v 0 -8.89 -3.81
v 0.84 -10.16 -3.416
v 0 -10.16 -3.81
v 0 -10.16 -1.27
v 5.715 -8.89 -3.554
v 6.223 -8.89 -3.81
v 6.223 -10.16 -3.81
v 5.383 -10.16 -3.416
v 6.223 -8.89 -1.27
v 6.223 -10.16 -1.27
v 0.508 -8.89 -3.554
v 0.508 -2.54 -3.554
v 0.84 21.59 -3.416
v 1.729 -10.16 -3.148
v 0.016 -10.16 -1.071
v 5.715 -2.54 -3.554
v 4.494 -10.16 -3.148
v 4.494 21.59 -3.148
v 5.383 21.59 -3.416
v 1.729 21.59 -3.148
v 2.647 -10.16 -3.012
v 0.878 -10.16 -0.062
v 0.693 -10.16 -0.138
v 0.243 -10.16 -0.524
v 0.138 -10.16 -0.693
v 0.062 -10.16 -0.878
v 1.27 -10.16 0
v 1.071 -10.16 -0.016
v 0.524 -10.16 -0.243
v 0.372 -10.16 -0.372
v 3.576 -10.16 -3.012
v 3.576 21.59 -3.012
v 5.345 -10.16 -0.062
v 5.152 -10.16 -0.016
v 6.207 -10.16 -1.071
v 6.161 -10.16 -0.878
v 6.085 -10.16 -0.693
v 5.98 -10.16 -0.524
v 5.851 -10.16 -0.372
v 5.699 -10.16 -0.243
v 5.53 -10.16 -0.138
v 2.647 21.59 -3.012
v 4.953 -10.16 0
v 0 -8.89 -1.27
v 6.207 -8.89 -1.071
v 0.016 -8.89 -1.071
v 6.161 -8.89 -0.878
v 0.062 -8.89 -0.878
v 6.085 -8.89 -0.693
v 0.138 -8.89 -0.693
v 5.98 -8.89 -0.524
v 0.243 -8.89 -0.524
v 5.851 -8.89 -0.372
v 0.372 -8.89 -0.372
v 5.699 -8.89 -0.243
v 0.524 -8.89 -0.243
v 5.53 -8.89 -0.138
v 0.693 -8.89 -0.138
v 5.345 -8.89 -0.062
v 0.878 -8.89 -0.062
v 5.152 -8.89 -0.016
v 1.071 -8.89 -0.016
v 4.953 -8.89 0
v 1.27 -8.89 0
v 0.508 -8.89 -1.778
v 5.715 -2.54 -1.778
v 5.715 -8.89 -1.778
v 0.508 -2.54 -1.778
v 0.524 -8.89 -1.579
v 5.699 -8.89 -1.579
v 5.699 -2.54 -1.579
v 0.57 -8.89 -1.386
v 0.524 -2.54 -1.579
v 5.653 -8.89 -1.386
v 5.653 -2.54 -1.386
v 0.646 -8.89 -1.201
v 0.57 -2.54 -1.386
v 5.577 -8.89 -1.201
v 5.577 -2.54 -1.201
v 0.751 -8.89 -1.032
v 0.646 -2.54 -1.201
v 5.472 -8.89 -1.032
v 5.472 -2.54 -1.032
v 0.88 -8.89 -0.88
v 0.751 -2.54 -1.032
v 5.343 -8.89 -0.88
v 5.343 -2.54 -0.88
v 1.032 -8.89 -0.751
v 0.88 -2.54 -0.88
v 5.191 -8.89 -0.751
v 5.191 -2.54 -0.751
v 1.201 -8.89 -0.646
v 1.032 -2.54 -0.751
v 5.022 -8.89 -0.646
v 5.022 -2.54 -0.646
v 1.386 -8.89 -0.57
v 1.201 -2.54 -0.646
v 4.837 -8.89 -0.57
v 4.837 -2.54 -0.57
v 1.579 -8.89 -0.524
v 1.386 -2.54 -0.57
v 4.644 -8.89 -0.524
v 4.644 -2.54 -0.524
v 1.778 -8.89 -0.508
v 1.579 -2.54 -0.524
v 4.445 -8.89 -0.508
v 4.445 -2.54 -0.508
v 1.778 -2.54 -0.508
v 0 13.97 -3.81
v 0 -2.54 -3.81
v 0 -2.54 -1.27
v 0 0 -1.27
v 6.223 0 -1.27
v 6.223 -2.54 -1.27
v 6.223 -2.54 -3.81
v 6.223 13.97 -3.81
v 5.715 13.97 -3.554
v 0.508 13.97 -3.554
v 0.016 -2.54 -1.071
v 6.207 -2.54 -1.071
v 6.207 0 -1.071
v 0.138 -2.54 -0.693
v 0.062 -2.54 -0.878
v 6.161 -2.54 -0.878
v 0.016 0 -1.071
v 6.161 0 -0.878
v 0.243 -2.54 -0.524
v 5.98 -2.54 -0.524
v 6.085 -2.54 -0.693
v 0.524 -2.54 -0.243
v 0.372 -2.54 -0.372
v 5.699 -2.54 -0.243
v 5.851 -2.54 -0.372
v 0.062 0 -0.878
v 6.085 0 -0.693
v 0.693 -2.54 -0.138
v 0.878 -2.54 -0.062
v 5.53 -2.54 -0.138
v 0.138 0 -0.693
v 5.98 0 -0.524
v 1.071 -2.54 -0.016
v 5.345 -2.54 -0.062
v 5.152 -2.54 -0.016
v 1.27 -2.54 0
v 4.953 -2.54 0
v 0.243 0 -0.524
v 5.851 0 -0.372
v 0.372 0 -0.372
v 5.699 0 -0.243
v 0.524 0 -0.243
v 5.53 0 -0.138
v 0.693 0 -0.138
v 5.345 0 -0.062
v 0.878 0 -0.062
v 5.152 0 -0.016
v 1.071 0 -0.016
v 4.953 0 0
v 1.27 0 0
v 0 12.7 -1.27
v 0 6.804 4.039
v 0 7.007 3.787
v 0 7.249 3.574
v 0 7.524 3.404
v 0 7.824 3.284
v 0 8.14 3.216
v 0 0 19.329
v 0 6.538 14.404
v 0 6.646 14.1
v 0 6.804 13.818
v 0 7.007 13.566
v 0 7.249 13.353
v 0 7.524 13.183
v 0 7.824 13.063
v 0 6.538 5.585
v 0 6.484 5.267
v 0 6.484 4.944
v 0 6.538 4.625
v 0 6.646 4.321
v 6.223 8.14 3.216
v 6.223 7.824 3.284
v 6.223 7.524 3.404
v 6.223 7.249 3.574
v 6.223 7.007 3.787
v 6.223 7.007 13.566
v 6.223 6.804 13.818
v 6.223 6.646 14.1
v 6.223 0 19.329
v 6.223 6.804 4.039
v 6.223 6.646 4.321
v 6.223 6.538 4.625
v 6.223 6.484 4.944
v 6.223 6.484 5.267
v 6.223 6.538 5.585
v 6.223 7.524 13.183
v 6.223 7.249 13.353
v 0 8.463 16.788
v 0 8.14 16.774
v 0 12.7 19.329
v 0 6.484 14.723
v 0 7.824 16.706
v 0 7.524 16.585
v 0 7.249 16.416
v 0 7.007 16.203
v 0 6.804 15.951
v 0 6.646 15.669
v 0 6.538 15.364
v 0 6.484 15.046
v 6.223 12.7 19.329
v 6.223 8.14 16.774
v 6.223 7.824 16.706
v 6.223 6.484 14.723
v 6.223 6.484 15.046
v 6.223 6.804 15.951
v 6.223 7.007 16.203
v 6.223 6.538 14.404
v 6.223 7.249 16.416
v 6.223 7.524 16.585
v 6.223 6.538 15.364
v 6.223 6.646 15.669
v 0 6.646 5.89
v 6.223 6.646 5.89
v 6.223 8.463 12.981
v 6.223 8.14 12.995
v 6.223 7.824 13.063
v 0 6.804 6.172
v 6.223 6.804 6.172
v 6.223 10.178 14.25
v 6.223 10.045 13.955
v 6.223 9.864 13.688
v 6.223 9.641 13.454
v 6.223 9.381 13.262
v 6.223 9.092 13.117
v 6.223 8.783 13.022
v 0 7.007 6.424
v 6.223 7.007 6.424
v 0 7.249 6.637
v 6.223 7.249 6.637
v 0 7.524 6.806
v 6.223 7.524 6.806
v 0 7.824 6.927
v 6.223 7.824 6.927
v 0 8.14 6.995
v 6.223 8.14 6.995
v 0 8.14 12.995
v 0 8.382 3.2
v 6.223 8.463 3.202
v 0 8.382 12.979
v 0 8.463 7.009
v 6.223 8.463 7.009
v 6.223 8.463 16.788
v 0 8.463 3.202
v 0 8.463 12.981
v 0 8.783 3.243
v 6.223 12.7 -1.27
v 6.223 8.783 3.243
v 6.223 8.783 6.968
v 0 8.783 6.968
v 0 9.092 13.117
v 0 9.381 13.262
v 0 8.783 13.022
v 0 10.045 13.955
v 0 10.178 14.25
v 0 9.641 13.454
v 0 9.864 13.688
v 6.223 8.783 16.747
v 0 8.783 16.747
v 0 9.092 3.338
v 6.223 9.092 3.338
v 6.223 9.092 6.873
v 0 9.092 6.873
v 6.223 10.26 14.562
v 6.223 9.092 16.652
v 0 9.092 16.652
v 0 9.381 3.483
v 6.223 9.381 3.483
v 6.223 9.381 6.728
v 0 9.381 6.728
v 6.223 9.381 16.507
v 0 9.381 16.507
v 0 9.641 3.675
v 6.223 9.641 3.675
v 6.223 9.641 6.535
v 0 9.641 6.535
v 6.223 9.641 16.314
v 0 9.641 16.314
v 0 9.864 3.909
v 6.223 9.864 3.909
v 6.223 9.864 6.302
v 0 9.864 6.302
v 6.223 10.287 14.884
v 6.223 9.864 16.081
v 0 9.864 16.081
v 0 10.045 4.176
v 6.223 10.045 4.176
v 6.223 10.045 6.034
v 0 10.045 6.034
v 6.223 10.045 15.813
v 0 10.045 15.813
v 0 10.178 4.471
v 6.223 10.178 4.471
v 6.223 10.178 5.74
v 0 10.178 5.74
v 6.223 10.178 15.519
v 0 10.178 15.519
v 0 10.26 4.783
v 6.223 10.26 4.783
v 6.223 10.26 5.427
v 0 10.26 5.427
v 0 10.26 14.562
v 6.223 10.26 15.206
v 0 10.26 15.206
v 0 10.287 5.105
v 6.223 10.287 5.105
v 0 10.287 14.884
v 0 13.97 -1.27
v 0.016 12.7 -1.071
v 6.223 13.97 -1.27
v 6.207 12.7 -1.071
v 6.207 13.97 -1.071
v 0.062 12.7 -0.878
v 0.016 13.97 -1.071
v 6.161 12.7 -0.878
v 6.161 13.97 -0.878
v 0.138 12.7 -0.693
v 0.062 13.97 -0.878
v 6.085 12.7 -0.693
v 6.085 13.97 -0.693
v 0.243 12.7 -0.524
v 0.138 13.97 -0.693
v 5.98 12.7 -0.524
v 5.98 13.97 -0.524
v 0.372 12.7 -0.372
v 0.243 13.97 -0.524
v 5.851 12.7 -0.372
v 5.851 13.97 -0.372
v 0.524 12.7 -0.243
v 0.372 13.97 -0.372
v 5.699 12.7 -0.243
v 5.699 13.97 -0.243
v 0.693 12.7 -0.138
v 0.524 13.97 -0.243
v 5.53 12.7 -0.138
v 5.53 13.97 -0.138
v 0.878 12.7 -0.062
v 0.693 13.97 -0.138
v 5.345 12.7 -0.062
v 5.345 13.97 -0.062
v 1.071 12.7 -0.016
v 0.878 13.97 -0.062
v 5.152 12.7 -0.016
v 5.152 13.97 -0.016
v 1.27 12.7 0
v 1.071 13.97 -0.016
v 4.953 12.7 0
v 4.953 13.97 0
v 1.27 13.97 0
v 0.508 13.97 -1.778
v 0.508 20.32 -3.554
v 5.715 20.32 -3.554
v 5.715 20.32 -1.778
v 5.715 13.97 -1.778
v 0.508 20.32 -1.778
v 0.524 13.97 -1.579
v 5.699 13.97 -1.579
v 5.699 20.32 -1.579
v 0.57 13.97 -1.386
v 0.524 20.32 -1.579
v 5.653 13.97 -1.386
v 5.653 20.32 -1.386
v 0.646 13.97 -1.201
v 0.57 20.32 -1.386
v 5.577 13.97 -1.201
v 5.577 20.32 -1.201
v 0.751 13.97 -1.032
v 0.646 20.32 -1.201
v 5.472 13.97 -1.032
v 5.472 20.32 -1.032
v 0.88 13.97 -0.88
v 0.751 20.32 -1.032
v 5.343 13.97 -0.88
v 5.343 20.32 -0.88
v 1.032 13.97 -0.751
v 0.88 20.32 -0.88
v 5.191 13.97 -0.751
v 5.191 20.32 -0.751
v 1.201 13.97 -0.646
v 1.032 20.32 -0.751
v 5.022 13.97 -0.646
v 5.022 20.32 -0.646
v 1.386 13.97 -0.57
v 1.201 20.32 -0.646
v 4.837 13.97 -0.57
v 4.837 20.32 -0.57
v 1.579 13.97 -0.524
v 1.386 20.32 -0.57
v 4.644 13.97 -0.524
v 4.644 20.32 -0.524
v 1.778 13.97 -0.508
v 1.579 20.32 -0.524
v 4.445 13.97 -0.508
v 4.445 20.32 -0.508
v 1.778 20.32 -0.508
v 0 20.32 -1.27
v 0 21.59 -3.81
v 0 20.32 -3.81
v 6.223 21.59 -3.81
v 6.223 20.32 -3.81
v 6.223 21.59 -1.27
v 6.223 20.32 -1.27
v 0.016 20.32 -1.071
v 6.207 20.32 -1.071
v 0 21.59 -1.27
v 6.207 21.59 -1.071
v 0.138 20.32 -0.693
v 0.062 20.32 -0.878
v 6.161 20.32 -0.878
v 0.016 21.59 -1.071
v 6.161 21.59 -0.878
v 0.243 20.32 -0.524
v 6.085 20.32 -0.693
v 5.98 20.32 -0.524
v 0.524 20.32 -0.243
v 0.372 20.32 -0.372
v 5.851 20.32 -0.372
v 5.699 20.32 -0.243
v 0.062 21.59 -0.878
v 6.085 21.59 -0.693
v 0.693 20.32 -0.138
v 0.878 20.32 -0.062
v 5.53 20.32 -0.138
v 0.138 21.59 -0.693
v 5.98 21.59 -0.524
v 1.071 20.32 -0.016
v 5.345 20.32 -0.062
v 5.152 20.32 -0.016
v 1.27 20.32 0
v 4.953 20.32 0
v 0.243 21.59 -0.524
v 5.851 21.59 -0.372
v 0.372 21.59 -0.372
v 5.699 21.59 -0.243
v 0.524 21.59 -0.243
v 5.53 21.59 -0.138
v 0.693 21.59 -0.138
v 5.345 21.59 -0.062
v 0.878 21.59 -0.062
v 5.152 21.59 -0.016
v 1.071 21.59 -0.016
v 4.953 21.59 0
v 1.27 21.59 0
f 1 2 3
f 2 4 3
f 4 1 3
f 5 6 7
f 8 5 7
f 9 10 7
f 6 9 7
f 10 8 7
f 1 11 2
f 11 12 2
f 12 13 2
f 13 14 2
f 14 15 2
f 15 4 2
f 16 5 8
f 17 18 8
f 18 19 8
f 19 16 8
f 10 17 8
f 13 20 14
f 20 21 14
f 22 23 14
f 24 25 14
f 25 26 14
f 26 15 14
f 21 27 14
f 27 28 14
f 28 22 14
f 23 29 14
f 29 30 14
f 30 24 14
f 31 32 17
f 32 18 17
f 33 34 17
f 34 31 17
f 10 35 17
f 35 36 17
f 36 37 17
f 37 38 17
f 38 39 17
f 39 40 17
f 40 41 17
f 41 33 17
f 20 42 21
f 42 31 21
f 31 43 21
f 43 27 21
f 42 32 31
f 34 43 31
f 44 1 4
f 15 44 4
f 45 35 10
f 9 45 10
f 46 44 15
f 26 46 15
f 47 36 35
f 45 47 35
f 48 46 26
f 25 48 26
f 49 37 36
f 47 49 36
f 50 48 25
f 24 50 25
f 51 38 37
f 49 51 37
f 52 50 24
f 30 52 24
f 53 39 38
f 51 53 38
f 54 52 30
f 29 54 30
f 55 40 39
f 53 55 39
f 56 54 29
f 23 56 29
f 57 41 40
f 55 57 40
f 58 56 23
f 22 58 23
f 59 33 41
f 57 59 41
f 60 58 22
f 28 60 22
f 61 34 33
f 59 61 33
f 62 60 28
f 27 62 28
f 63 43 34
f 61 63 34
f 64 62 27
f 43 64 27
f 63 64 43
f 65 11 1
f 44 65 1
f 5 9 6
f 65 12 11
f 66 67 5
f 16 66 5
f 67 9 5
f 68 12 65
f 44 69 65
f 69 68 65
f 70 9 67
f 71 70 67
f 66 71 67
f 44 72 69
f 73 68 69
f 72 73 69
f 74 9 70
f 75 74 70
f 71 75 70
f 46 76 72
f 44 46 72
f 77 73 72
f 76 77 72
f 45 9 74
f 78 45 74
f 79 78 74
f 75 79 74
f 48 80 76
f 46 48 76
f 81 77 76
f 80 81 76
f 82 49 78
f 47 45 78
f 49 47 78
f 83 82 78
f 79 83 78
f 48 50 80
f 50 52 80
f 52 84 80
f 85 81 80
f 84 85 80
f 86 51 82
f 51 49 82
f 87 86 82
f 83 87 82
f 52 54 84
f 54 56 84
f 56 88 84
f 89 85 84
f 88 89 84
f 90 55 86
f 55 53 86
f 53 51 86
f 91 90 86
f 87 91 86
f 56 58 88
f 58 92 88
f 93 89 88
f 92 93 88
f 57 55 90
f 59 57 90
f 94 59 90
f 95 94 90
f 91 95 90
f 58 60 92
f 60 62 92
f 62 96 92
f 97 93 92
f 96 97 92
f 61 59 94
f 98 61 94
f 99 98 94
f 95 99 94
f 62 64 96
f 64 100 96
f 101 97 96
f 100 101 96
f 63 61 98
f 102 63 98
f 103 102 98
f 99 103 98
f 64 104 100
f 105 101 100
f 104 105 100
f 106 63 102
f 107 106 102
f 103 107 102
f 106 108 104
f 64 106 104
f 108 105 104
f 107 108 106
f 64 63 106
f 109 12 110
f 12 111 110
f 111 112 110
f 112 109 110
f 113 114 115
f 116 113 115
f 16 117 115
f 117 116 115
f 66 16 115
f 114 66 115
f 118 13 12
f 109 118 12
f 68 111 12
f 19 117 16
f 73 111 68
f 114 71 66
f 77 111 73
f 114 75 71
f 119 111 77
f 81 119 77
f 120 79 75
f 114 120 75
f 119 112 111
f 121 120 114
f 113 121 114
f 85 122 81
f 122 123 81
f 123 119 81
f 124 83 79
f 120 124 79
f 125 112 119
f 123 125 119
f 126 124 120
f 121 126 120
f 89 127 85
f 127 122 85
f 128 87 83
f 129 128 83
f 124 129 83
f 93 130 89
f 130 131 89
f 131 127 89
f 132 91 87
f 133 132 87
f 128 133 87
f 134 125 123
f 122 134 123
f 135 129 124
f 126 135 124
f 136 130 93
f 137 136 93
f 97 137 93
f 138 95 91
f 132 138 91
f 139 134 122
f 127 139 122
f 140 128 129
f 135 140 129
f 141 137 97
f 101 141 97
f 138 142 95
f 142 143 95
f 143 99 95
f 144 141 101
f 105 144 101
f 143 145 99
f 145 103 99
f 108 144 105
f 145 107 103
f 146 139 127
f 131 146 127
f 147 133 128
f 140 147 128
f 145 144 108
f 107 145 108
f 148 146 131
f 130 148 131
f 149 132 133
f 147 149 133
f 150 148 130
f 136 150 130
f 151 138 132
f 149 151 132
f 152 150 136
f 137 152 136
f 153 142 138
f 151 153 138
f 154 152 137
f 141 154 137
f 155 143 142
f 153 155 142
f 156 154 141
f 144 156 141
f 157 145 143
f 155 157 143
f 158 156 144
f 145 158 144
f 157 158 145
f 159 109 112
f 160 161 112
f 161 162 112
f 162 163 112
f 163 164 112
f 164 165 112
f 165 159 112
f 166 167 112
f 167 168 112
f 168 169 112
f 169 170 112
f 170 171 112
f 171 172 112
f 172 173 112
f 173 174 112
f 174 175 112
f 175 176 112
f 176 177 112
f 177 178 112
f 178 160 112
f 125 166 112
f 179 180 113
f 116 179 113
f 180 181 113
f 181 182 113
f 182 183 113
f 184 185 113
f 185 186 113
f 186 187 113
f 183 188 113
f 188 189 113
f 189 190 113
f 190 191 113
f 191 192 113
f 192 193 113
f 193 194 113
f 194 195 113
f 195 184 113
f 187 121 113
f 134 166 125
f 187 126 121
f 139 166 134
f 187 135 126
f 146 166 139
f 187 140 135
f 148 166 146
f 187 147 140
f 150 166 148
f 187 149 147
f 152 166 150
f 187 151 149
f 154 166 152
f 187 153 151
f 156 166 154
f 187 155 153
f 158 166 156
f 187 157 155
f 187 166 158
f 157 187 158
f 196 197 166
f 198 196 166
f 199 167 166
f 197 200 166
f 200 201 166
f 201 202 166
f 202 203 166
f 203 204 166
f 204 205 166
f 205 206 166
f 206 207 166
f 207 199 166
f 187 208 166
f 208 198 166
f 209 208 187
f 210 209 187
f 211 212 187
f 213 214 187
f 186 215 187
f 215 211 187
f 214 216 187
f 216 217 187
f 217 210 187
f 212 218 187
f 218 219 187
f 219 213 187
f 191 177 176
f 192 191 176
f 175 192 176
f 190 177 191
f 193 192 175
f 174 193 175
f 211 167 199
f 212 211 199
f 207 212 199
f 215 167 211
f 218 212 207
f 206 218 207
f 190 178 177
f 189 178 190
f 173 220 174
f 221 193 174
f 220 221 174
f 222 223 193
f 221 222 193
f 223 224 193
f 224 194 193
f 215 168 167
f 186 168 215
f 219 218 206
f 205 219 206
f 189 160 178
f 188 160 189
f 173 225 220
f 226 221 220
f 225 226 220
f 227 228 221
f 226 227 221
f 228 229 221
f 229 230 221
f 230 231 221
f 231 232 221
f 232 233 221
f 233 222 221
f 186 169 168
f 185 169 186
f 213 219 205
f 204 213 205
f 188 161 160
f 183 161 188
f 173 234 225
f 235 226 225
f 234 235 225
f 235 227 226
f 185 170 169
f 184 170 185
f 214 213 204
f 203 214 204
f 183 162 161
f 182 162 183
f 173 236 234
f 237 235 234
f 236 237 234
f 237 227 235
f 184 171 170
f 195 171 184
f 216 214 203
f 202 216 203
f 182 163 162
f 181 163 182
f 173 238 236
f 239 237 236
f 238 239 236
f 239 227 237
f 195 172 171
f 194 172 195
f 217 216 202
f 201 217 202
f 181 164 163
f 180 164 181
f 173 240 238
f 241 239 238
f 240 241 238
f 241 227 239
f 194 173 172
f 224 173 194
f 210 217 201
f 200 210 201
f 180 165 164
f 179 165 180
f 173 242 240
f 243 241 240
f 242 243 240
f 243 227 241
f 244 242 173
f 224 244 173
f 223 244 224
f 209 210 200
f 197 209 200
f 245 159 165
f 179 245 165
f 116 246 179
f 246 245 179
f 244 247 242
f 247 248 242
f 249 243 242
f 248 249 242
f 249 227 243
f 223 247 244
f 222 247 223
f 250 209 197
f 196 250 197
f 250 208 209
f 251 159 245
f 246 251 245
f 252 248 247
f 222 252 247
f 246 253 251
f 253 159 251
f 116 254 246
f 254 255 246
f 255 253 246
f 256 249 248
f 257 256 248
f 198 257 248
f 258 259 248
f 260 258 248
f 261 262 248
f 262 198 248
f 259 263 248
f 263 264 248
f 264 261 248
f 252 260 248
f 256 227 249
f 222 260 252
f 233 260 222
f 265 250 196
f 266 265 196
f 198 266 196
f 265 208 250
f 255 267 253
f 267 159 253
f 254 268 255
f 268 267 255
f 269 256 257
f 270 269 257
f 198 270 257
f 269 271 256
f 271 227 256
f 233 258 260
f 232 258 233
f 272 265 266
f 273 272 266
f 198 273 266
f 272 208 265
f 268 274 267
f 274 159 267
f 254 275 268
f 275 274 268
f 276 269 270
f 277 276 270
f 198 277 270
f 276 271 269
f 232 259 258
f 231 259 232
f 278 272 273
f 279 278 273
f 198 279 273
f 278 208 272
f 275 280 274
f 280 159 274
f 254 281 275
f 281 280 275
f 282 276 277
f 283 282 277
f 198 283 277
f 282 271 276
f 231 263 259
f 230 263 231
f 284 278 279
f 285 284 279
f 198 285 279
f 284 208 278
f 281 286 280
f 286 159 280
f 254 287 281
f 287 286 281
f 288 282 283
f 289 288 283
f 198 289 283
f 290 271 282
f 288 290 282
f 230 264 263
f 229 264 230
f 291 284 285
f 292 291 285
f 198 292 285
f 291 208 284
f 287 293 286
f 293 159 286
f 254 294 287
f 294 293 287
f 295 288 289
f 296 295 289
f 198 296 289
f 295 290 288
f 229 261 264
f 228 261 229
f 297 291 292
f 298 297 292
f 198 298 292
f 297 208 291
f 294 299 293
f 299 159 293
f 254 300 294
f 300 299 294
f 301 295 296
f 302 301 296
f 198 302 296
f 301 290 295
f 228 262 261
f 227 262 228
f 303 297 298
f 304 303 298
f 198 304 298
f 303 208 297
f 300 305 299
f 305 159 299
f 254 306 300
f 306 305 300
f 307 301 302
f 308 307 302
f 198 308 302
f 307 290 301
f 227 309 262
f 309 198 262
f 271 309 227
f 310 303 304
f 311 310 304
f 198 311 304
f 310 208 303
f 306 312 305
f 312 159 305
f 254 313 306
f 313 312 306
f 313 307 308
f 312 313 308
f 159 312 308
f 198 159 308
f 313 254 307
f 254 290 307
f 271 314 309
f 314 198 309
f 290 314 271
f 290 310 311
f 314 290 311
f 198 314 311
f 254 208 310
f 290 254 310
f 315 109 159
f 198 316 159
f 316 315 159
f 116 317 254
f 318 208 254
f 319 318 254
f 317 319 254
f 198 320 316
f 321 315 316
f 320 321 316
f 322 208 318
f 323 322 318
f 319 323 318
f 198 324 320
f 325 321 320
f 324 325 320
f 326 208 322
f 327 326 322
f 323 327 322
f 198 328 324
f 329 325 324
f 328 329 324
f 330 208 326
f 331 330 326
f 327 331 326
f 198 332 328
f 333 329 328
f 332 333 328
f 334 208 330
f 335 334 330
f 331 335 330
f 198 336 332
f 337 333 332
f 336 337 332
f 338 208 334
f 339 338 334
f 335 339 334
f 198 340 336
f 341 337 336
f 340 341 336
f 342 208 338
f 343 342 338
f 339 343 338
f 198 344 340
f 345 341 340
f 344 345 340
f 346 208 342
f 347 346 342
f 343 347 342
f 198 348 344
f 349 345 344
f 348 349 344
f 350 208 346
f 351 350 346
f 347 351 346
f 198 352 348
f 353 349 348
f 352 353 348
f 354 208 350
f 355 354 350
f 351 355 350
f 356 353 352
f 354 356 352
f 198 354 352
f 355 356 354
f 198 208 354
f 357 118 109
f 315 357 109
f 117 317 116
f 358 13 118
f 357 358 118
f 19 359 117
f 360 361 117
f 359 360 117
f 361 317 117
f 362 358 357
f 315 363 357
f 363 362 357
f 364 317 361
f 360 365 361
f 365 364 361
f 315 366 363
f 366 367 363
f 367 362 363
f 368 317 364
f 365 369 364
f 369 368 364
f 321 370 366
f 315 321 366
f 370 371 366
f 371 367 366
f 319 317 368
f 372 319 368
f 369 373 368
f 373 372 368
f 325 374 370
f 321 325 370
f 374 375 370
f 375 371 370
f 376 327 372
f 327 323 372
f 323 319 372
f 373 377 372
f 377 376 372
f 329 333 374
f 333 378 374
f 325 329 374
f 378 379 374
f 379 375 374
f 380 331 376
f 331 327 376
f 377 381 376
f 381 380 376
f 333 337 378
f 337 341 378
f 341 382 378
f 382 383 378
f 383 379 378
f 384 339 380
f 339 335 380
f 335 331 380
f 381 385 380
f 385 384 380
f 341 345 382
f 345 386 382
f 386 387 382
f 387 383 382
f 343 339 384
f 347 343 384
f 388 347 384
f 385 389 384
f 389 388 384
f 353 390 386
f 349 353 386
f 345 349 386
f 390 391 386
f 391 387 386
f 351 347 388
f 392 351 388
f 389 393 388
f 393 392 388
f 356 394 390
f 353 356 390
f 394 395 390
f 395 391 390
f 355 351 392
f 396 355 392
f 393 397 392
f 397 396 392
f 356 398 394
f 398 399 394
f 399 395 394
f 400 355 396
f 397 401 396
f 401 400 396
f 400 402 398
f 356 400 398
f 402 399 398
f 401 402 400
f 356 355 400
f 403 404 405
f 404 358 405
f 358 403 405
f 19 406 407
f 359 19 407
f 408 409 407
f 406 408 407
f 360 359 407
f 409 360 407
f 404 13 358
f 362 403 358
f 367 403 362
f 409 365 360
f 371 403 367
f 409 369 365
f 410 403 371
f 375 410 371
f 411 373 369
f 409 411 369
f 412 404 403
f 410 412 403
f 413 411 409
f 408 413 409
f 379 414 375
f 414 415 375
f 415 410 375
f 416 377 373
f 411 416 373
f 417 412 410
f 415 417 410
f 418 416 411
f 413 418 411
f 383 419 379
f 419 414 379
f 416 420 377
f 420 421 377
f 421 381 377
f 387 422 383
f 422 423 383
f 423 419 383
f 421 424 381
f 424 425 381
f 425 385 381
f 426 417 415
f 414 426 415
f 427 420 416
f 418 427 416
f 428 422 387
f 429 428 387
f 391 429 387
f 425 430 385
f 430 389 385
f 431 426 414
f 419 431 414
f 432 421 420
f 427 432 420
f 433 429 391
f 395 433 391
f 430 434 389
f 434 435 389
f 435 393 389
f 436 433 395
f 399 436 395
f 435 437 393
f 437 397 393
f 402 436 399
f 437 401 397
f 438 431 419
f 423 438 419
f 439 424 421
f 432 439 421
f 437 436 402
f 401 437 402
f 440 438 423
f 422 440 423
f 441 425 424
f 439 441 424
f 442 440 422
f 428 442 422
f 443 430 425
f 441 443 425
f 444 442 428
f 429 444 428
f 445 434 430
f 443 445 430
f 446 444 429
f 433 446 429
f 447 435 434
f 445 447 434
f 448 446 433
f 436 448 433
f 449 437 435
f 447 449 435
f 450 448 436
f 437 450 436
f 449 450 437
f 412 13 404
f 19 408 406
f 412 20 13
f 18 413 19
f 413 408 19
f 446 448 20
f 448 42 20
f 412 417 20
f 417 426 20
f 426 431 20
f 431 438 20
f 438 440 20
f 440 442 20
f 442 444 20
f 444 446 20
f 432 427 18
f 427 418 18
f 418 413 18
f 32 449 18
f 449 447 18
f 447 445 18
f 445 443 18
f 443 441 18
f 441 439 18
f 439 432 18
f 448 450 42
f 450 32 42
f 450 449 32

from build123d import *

# Parameters (mm, degrees)
SKETCH2_W                = 6.223
SKETCH2_H                = 12.7
BOSS_EXTRUDE1_DEPTH      = 19.3294
SKETCH3_R                = 1.905
CUT_EXTRUDE1_DEPTH       = 19.3294
BOSS_EXTRUDE2_DEPTH      = 8.89
BOSS_EXTRUDE2_DEPTH_BACK = 22.86
CUT_EXTRUDE2_START       = -7.62
CUT_EXTRUDE2_DEPTH       = 6.35
FILLET1_R                = 1.27


with BuildPart() as part:
    # Sketch2 → Boss-Extrude1 (new body)
    with BuildSketch(Plane.XY):
        with Locations((3.1115, 6.35)):
            Rectangle(SKETCH2_W, SKETCH2_H)
    extrude(amount=BOSS_EXTRUDE1_DEPTH)

    # Sketch3 → Cut-Extrude1 (cut)
    with BuildSketch(Plane(origin=(6.223, 0, 0), x_dir=(0, 0, -1), z_dir=(1, 0, 0))):
        with Locations(Location((-14.8844, 8.382, 0), (0, 0, 90))):
            Circle(SKETCH3_R)
        with Locations(Location((-5.1054, 8.382, 0), (0, 0, 90))):
            Circle(SKETCH3_R)
    extrude(amount=-CUT_EXTRUDE1_DEPTH, mode=Mode.SUBTRACT)

    # Sketch4 → Boss-Extrude2 (add, two sides: drawn at the far end of the back side and taken through both)
    with BuildSketch(Plane(origin=(0, 12.7, 0), x_dir=(1, 0, 0), z_dir=(0, 1, 0)).offset(-BOSS_EXTRUDE2_DEPTH_BACK)):
        with BuildLine():
            Line((6.223, 3.81), (6.223, 0))
            Line((6.223, 0), (0, 0))
            Line((0, 0), (0, 3.81))
            ThreePointArc((0, 3.81), (3.1115, 2.995437449), (6.223, 3.81))
        make_face()
    extrude(amount=BOSS_EXTRUDE2_DEPTH + BOSS_EXTRUDE2_DEPTH_BACK)

    # Sketch5 → Cut-Extrude2 (cut)
    with BuildSketch(Plane(origin=(0, 21.59, 0), x_dir=(1, 0, 0), z_dir=(0, 1, 0)).offset(CUT_EXTRUDE2_START)):
        with BuildLine():
            Line((5.715, 0.508), (5.715, 3.000837245))
            Line((5.715, 3.000837245), (5.715, 3.553694382))
            ThreePointArc((5.715, 3.553694382), (5.971872247, 3.676154372), (6.223, 3.81))
            Line((6.223, 3.81), (6.223, 0))
            Line((6.223, 0), (0, 0))
            Line((0, 0), (0, 3.81))
            ThreePointArc((0, 3.81), (0.251127753, 3.676154372), (0.508, 3.553694382))
            Line((0.508, 3.553694382), (0.508, 3.000837245))
            Line((0.508, 3.000837245), (0.508, 0.508))
            Line((0.508, 0.508), (5.715, 0.508))
        make_face()
    cut_extrude2 = extrude(amount=CUT_EXTRUDE2_DEPTH, mode=Mode.SUBTRACT)

    # Mirror1: Cut-Extrude2 across plane
    add(cut_extrude2.mirror(Plane.ZX.offset(5.715)), mode=Mode.SUBTRACT)

    # Fillet1
    fillet1_edges = [part.edges().sort_by_distance(p)[0] for p in [
        (6.223, 13.335, 0),
        (6.223, -9.525, 0),
        (0, -9.525, 0),
        (0, 13.335, 0),
        (6.223, 20.955, 0),
        (0, 20.955, 0),
        (0.508, 17.145, -0.508),
        (5.715, 17.145, -0.508),
        (0, -1.27, 0),
        (6.223, -1.27, 0),
        (5.715, -5.715, -0.508),
        (0.508, -5.715, -0.508),
    ]]
    fillet(fillet1_edges, radius=FILLET1_R)


solid = part.part
